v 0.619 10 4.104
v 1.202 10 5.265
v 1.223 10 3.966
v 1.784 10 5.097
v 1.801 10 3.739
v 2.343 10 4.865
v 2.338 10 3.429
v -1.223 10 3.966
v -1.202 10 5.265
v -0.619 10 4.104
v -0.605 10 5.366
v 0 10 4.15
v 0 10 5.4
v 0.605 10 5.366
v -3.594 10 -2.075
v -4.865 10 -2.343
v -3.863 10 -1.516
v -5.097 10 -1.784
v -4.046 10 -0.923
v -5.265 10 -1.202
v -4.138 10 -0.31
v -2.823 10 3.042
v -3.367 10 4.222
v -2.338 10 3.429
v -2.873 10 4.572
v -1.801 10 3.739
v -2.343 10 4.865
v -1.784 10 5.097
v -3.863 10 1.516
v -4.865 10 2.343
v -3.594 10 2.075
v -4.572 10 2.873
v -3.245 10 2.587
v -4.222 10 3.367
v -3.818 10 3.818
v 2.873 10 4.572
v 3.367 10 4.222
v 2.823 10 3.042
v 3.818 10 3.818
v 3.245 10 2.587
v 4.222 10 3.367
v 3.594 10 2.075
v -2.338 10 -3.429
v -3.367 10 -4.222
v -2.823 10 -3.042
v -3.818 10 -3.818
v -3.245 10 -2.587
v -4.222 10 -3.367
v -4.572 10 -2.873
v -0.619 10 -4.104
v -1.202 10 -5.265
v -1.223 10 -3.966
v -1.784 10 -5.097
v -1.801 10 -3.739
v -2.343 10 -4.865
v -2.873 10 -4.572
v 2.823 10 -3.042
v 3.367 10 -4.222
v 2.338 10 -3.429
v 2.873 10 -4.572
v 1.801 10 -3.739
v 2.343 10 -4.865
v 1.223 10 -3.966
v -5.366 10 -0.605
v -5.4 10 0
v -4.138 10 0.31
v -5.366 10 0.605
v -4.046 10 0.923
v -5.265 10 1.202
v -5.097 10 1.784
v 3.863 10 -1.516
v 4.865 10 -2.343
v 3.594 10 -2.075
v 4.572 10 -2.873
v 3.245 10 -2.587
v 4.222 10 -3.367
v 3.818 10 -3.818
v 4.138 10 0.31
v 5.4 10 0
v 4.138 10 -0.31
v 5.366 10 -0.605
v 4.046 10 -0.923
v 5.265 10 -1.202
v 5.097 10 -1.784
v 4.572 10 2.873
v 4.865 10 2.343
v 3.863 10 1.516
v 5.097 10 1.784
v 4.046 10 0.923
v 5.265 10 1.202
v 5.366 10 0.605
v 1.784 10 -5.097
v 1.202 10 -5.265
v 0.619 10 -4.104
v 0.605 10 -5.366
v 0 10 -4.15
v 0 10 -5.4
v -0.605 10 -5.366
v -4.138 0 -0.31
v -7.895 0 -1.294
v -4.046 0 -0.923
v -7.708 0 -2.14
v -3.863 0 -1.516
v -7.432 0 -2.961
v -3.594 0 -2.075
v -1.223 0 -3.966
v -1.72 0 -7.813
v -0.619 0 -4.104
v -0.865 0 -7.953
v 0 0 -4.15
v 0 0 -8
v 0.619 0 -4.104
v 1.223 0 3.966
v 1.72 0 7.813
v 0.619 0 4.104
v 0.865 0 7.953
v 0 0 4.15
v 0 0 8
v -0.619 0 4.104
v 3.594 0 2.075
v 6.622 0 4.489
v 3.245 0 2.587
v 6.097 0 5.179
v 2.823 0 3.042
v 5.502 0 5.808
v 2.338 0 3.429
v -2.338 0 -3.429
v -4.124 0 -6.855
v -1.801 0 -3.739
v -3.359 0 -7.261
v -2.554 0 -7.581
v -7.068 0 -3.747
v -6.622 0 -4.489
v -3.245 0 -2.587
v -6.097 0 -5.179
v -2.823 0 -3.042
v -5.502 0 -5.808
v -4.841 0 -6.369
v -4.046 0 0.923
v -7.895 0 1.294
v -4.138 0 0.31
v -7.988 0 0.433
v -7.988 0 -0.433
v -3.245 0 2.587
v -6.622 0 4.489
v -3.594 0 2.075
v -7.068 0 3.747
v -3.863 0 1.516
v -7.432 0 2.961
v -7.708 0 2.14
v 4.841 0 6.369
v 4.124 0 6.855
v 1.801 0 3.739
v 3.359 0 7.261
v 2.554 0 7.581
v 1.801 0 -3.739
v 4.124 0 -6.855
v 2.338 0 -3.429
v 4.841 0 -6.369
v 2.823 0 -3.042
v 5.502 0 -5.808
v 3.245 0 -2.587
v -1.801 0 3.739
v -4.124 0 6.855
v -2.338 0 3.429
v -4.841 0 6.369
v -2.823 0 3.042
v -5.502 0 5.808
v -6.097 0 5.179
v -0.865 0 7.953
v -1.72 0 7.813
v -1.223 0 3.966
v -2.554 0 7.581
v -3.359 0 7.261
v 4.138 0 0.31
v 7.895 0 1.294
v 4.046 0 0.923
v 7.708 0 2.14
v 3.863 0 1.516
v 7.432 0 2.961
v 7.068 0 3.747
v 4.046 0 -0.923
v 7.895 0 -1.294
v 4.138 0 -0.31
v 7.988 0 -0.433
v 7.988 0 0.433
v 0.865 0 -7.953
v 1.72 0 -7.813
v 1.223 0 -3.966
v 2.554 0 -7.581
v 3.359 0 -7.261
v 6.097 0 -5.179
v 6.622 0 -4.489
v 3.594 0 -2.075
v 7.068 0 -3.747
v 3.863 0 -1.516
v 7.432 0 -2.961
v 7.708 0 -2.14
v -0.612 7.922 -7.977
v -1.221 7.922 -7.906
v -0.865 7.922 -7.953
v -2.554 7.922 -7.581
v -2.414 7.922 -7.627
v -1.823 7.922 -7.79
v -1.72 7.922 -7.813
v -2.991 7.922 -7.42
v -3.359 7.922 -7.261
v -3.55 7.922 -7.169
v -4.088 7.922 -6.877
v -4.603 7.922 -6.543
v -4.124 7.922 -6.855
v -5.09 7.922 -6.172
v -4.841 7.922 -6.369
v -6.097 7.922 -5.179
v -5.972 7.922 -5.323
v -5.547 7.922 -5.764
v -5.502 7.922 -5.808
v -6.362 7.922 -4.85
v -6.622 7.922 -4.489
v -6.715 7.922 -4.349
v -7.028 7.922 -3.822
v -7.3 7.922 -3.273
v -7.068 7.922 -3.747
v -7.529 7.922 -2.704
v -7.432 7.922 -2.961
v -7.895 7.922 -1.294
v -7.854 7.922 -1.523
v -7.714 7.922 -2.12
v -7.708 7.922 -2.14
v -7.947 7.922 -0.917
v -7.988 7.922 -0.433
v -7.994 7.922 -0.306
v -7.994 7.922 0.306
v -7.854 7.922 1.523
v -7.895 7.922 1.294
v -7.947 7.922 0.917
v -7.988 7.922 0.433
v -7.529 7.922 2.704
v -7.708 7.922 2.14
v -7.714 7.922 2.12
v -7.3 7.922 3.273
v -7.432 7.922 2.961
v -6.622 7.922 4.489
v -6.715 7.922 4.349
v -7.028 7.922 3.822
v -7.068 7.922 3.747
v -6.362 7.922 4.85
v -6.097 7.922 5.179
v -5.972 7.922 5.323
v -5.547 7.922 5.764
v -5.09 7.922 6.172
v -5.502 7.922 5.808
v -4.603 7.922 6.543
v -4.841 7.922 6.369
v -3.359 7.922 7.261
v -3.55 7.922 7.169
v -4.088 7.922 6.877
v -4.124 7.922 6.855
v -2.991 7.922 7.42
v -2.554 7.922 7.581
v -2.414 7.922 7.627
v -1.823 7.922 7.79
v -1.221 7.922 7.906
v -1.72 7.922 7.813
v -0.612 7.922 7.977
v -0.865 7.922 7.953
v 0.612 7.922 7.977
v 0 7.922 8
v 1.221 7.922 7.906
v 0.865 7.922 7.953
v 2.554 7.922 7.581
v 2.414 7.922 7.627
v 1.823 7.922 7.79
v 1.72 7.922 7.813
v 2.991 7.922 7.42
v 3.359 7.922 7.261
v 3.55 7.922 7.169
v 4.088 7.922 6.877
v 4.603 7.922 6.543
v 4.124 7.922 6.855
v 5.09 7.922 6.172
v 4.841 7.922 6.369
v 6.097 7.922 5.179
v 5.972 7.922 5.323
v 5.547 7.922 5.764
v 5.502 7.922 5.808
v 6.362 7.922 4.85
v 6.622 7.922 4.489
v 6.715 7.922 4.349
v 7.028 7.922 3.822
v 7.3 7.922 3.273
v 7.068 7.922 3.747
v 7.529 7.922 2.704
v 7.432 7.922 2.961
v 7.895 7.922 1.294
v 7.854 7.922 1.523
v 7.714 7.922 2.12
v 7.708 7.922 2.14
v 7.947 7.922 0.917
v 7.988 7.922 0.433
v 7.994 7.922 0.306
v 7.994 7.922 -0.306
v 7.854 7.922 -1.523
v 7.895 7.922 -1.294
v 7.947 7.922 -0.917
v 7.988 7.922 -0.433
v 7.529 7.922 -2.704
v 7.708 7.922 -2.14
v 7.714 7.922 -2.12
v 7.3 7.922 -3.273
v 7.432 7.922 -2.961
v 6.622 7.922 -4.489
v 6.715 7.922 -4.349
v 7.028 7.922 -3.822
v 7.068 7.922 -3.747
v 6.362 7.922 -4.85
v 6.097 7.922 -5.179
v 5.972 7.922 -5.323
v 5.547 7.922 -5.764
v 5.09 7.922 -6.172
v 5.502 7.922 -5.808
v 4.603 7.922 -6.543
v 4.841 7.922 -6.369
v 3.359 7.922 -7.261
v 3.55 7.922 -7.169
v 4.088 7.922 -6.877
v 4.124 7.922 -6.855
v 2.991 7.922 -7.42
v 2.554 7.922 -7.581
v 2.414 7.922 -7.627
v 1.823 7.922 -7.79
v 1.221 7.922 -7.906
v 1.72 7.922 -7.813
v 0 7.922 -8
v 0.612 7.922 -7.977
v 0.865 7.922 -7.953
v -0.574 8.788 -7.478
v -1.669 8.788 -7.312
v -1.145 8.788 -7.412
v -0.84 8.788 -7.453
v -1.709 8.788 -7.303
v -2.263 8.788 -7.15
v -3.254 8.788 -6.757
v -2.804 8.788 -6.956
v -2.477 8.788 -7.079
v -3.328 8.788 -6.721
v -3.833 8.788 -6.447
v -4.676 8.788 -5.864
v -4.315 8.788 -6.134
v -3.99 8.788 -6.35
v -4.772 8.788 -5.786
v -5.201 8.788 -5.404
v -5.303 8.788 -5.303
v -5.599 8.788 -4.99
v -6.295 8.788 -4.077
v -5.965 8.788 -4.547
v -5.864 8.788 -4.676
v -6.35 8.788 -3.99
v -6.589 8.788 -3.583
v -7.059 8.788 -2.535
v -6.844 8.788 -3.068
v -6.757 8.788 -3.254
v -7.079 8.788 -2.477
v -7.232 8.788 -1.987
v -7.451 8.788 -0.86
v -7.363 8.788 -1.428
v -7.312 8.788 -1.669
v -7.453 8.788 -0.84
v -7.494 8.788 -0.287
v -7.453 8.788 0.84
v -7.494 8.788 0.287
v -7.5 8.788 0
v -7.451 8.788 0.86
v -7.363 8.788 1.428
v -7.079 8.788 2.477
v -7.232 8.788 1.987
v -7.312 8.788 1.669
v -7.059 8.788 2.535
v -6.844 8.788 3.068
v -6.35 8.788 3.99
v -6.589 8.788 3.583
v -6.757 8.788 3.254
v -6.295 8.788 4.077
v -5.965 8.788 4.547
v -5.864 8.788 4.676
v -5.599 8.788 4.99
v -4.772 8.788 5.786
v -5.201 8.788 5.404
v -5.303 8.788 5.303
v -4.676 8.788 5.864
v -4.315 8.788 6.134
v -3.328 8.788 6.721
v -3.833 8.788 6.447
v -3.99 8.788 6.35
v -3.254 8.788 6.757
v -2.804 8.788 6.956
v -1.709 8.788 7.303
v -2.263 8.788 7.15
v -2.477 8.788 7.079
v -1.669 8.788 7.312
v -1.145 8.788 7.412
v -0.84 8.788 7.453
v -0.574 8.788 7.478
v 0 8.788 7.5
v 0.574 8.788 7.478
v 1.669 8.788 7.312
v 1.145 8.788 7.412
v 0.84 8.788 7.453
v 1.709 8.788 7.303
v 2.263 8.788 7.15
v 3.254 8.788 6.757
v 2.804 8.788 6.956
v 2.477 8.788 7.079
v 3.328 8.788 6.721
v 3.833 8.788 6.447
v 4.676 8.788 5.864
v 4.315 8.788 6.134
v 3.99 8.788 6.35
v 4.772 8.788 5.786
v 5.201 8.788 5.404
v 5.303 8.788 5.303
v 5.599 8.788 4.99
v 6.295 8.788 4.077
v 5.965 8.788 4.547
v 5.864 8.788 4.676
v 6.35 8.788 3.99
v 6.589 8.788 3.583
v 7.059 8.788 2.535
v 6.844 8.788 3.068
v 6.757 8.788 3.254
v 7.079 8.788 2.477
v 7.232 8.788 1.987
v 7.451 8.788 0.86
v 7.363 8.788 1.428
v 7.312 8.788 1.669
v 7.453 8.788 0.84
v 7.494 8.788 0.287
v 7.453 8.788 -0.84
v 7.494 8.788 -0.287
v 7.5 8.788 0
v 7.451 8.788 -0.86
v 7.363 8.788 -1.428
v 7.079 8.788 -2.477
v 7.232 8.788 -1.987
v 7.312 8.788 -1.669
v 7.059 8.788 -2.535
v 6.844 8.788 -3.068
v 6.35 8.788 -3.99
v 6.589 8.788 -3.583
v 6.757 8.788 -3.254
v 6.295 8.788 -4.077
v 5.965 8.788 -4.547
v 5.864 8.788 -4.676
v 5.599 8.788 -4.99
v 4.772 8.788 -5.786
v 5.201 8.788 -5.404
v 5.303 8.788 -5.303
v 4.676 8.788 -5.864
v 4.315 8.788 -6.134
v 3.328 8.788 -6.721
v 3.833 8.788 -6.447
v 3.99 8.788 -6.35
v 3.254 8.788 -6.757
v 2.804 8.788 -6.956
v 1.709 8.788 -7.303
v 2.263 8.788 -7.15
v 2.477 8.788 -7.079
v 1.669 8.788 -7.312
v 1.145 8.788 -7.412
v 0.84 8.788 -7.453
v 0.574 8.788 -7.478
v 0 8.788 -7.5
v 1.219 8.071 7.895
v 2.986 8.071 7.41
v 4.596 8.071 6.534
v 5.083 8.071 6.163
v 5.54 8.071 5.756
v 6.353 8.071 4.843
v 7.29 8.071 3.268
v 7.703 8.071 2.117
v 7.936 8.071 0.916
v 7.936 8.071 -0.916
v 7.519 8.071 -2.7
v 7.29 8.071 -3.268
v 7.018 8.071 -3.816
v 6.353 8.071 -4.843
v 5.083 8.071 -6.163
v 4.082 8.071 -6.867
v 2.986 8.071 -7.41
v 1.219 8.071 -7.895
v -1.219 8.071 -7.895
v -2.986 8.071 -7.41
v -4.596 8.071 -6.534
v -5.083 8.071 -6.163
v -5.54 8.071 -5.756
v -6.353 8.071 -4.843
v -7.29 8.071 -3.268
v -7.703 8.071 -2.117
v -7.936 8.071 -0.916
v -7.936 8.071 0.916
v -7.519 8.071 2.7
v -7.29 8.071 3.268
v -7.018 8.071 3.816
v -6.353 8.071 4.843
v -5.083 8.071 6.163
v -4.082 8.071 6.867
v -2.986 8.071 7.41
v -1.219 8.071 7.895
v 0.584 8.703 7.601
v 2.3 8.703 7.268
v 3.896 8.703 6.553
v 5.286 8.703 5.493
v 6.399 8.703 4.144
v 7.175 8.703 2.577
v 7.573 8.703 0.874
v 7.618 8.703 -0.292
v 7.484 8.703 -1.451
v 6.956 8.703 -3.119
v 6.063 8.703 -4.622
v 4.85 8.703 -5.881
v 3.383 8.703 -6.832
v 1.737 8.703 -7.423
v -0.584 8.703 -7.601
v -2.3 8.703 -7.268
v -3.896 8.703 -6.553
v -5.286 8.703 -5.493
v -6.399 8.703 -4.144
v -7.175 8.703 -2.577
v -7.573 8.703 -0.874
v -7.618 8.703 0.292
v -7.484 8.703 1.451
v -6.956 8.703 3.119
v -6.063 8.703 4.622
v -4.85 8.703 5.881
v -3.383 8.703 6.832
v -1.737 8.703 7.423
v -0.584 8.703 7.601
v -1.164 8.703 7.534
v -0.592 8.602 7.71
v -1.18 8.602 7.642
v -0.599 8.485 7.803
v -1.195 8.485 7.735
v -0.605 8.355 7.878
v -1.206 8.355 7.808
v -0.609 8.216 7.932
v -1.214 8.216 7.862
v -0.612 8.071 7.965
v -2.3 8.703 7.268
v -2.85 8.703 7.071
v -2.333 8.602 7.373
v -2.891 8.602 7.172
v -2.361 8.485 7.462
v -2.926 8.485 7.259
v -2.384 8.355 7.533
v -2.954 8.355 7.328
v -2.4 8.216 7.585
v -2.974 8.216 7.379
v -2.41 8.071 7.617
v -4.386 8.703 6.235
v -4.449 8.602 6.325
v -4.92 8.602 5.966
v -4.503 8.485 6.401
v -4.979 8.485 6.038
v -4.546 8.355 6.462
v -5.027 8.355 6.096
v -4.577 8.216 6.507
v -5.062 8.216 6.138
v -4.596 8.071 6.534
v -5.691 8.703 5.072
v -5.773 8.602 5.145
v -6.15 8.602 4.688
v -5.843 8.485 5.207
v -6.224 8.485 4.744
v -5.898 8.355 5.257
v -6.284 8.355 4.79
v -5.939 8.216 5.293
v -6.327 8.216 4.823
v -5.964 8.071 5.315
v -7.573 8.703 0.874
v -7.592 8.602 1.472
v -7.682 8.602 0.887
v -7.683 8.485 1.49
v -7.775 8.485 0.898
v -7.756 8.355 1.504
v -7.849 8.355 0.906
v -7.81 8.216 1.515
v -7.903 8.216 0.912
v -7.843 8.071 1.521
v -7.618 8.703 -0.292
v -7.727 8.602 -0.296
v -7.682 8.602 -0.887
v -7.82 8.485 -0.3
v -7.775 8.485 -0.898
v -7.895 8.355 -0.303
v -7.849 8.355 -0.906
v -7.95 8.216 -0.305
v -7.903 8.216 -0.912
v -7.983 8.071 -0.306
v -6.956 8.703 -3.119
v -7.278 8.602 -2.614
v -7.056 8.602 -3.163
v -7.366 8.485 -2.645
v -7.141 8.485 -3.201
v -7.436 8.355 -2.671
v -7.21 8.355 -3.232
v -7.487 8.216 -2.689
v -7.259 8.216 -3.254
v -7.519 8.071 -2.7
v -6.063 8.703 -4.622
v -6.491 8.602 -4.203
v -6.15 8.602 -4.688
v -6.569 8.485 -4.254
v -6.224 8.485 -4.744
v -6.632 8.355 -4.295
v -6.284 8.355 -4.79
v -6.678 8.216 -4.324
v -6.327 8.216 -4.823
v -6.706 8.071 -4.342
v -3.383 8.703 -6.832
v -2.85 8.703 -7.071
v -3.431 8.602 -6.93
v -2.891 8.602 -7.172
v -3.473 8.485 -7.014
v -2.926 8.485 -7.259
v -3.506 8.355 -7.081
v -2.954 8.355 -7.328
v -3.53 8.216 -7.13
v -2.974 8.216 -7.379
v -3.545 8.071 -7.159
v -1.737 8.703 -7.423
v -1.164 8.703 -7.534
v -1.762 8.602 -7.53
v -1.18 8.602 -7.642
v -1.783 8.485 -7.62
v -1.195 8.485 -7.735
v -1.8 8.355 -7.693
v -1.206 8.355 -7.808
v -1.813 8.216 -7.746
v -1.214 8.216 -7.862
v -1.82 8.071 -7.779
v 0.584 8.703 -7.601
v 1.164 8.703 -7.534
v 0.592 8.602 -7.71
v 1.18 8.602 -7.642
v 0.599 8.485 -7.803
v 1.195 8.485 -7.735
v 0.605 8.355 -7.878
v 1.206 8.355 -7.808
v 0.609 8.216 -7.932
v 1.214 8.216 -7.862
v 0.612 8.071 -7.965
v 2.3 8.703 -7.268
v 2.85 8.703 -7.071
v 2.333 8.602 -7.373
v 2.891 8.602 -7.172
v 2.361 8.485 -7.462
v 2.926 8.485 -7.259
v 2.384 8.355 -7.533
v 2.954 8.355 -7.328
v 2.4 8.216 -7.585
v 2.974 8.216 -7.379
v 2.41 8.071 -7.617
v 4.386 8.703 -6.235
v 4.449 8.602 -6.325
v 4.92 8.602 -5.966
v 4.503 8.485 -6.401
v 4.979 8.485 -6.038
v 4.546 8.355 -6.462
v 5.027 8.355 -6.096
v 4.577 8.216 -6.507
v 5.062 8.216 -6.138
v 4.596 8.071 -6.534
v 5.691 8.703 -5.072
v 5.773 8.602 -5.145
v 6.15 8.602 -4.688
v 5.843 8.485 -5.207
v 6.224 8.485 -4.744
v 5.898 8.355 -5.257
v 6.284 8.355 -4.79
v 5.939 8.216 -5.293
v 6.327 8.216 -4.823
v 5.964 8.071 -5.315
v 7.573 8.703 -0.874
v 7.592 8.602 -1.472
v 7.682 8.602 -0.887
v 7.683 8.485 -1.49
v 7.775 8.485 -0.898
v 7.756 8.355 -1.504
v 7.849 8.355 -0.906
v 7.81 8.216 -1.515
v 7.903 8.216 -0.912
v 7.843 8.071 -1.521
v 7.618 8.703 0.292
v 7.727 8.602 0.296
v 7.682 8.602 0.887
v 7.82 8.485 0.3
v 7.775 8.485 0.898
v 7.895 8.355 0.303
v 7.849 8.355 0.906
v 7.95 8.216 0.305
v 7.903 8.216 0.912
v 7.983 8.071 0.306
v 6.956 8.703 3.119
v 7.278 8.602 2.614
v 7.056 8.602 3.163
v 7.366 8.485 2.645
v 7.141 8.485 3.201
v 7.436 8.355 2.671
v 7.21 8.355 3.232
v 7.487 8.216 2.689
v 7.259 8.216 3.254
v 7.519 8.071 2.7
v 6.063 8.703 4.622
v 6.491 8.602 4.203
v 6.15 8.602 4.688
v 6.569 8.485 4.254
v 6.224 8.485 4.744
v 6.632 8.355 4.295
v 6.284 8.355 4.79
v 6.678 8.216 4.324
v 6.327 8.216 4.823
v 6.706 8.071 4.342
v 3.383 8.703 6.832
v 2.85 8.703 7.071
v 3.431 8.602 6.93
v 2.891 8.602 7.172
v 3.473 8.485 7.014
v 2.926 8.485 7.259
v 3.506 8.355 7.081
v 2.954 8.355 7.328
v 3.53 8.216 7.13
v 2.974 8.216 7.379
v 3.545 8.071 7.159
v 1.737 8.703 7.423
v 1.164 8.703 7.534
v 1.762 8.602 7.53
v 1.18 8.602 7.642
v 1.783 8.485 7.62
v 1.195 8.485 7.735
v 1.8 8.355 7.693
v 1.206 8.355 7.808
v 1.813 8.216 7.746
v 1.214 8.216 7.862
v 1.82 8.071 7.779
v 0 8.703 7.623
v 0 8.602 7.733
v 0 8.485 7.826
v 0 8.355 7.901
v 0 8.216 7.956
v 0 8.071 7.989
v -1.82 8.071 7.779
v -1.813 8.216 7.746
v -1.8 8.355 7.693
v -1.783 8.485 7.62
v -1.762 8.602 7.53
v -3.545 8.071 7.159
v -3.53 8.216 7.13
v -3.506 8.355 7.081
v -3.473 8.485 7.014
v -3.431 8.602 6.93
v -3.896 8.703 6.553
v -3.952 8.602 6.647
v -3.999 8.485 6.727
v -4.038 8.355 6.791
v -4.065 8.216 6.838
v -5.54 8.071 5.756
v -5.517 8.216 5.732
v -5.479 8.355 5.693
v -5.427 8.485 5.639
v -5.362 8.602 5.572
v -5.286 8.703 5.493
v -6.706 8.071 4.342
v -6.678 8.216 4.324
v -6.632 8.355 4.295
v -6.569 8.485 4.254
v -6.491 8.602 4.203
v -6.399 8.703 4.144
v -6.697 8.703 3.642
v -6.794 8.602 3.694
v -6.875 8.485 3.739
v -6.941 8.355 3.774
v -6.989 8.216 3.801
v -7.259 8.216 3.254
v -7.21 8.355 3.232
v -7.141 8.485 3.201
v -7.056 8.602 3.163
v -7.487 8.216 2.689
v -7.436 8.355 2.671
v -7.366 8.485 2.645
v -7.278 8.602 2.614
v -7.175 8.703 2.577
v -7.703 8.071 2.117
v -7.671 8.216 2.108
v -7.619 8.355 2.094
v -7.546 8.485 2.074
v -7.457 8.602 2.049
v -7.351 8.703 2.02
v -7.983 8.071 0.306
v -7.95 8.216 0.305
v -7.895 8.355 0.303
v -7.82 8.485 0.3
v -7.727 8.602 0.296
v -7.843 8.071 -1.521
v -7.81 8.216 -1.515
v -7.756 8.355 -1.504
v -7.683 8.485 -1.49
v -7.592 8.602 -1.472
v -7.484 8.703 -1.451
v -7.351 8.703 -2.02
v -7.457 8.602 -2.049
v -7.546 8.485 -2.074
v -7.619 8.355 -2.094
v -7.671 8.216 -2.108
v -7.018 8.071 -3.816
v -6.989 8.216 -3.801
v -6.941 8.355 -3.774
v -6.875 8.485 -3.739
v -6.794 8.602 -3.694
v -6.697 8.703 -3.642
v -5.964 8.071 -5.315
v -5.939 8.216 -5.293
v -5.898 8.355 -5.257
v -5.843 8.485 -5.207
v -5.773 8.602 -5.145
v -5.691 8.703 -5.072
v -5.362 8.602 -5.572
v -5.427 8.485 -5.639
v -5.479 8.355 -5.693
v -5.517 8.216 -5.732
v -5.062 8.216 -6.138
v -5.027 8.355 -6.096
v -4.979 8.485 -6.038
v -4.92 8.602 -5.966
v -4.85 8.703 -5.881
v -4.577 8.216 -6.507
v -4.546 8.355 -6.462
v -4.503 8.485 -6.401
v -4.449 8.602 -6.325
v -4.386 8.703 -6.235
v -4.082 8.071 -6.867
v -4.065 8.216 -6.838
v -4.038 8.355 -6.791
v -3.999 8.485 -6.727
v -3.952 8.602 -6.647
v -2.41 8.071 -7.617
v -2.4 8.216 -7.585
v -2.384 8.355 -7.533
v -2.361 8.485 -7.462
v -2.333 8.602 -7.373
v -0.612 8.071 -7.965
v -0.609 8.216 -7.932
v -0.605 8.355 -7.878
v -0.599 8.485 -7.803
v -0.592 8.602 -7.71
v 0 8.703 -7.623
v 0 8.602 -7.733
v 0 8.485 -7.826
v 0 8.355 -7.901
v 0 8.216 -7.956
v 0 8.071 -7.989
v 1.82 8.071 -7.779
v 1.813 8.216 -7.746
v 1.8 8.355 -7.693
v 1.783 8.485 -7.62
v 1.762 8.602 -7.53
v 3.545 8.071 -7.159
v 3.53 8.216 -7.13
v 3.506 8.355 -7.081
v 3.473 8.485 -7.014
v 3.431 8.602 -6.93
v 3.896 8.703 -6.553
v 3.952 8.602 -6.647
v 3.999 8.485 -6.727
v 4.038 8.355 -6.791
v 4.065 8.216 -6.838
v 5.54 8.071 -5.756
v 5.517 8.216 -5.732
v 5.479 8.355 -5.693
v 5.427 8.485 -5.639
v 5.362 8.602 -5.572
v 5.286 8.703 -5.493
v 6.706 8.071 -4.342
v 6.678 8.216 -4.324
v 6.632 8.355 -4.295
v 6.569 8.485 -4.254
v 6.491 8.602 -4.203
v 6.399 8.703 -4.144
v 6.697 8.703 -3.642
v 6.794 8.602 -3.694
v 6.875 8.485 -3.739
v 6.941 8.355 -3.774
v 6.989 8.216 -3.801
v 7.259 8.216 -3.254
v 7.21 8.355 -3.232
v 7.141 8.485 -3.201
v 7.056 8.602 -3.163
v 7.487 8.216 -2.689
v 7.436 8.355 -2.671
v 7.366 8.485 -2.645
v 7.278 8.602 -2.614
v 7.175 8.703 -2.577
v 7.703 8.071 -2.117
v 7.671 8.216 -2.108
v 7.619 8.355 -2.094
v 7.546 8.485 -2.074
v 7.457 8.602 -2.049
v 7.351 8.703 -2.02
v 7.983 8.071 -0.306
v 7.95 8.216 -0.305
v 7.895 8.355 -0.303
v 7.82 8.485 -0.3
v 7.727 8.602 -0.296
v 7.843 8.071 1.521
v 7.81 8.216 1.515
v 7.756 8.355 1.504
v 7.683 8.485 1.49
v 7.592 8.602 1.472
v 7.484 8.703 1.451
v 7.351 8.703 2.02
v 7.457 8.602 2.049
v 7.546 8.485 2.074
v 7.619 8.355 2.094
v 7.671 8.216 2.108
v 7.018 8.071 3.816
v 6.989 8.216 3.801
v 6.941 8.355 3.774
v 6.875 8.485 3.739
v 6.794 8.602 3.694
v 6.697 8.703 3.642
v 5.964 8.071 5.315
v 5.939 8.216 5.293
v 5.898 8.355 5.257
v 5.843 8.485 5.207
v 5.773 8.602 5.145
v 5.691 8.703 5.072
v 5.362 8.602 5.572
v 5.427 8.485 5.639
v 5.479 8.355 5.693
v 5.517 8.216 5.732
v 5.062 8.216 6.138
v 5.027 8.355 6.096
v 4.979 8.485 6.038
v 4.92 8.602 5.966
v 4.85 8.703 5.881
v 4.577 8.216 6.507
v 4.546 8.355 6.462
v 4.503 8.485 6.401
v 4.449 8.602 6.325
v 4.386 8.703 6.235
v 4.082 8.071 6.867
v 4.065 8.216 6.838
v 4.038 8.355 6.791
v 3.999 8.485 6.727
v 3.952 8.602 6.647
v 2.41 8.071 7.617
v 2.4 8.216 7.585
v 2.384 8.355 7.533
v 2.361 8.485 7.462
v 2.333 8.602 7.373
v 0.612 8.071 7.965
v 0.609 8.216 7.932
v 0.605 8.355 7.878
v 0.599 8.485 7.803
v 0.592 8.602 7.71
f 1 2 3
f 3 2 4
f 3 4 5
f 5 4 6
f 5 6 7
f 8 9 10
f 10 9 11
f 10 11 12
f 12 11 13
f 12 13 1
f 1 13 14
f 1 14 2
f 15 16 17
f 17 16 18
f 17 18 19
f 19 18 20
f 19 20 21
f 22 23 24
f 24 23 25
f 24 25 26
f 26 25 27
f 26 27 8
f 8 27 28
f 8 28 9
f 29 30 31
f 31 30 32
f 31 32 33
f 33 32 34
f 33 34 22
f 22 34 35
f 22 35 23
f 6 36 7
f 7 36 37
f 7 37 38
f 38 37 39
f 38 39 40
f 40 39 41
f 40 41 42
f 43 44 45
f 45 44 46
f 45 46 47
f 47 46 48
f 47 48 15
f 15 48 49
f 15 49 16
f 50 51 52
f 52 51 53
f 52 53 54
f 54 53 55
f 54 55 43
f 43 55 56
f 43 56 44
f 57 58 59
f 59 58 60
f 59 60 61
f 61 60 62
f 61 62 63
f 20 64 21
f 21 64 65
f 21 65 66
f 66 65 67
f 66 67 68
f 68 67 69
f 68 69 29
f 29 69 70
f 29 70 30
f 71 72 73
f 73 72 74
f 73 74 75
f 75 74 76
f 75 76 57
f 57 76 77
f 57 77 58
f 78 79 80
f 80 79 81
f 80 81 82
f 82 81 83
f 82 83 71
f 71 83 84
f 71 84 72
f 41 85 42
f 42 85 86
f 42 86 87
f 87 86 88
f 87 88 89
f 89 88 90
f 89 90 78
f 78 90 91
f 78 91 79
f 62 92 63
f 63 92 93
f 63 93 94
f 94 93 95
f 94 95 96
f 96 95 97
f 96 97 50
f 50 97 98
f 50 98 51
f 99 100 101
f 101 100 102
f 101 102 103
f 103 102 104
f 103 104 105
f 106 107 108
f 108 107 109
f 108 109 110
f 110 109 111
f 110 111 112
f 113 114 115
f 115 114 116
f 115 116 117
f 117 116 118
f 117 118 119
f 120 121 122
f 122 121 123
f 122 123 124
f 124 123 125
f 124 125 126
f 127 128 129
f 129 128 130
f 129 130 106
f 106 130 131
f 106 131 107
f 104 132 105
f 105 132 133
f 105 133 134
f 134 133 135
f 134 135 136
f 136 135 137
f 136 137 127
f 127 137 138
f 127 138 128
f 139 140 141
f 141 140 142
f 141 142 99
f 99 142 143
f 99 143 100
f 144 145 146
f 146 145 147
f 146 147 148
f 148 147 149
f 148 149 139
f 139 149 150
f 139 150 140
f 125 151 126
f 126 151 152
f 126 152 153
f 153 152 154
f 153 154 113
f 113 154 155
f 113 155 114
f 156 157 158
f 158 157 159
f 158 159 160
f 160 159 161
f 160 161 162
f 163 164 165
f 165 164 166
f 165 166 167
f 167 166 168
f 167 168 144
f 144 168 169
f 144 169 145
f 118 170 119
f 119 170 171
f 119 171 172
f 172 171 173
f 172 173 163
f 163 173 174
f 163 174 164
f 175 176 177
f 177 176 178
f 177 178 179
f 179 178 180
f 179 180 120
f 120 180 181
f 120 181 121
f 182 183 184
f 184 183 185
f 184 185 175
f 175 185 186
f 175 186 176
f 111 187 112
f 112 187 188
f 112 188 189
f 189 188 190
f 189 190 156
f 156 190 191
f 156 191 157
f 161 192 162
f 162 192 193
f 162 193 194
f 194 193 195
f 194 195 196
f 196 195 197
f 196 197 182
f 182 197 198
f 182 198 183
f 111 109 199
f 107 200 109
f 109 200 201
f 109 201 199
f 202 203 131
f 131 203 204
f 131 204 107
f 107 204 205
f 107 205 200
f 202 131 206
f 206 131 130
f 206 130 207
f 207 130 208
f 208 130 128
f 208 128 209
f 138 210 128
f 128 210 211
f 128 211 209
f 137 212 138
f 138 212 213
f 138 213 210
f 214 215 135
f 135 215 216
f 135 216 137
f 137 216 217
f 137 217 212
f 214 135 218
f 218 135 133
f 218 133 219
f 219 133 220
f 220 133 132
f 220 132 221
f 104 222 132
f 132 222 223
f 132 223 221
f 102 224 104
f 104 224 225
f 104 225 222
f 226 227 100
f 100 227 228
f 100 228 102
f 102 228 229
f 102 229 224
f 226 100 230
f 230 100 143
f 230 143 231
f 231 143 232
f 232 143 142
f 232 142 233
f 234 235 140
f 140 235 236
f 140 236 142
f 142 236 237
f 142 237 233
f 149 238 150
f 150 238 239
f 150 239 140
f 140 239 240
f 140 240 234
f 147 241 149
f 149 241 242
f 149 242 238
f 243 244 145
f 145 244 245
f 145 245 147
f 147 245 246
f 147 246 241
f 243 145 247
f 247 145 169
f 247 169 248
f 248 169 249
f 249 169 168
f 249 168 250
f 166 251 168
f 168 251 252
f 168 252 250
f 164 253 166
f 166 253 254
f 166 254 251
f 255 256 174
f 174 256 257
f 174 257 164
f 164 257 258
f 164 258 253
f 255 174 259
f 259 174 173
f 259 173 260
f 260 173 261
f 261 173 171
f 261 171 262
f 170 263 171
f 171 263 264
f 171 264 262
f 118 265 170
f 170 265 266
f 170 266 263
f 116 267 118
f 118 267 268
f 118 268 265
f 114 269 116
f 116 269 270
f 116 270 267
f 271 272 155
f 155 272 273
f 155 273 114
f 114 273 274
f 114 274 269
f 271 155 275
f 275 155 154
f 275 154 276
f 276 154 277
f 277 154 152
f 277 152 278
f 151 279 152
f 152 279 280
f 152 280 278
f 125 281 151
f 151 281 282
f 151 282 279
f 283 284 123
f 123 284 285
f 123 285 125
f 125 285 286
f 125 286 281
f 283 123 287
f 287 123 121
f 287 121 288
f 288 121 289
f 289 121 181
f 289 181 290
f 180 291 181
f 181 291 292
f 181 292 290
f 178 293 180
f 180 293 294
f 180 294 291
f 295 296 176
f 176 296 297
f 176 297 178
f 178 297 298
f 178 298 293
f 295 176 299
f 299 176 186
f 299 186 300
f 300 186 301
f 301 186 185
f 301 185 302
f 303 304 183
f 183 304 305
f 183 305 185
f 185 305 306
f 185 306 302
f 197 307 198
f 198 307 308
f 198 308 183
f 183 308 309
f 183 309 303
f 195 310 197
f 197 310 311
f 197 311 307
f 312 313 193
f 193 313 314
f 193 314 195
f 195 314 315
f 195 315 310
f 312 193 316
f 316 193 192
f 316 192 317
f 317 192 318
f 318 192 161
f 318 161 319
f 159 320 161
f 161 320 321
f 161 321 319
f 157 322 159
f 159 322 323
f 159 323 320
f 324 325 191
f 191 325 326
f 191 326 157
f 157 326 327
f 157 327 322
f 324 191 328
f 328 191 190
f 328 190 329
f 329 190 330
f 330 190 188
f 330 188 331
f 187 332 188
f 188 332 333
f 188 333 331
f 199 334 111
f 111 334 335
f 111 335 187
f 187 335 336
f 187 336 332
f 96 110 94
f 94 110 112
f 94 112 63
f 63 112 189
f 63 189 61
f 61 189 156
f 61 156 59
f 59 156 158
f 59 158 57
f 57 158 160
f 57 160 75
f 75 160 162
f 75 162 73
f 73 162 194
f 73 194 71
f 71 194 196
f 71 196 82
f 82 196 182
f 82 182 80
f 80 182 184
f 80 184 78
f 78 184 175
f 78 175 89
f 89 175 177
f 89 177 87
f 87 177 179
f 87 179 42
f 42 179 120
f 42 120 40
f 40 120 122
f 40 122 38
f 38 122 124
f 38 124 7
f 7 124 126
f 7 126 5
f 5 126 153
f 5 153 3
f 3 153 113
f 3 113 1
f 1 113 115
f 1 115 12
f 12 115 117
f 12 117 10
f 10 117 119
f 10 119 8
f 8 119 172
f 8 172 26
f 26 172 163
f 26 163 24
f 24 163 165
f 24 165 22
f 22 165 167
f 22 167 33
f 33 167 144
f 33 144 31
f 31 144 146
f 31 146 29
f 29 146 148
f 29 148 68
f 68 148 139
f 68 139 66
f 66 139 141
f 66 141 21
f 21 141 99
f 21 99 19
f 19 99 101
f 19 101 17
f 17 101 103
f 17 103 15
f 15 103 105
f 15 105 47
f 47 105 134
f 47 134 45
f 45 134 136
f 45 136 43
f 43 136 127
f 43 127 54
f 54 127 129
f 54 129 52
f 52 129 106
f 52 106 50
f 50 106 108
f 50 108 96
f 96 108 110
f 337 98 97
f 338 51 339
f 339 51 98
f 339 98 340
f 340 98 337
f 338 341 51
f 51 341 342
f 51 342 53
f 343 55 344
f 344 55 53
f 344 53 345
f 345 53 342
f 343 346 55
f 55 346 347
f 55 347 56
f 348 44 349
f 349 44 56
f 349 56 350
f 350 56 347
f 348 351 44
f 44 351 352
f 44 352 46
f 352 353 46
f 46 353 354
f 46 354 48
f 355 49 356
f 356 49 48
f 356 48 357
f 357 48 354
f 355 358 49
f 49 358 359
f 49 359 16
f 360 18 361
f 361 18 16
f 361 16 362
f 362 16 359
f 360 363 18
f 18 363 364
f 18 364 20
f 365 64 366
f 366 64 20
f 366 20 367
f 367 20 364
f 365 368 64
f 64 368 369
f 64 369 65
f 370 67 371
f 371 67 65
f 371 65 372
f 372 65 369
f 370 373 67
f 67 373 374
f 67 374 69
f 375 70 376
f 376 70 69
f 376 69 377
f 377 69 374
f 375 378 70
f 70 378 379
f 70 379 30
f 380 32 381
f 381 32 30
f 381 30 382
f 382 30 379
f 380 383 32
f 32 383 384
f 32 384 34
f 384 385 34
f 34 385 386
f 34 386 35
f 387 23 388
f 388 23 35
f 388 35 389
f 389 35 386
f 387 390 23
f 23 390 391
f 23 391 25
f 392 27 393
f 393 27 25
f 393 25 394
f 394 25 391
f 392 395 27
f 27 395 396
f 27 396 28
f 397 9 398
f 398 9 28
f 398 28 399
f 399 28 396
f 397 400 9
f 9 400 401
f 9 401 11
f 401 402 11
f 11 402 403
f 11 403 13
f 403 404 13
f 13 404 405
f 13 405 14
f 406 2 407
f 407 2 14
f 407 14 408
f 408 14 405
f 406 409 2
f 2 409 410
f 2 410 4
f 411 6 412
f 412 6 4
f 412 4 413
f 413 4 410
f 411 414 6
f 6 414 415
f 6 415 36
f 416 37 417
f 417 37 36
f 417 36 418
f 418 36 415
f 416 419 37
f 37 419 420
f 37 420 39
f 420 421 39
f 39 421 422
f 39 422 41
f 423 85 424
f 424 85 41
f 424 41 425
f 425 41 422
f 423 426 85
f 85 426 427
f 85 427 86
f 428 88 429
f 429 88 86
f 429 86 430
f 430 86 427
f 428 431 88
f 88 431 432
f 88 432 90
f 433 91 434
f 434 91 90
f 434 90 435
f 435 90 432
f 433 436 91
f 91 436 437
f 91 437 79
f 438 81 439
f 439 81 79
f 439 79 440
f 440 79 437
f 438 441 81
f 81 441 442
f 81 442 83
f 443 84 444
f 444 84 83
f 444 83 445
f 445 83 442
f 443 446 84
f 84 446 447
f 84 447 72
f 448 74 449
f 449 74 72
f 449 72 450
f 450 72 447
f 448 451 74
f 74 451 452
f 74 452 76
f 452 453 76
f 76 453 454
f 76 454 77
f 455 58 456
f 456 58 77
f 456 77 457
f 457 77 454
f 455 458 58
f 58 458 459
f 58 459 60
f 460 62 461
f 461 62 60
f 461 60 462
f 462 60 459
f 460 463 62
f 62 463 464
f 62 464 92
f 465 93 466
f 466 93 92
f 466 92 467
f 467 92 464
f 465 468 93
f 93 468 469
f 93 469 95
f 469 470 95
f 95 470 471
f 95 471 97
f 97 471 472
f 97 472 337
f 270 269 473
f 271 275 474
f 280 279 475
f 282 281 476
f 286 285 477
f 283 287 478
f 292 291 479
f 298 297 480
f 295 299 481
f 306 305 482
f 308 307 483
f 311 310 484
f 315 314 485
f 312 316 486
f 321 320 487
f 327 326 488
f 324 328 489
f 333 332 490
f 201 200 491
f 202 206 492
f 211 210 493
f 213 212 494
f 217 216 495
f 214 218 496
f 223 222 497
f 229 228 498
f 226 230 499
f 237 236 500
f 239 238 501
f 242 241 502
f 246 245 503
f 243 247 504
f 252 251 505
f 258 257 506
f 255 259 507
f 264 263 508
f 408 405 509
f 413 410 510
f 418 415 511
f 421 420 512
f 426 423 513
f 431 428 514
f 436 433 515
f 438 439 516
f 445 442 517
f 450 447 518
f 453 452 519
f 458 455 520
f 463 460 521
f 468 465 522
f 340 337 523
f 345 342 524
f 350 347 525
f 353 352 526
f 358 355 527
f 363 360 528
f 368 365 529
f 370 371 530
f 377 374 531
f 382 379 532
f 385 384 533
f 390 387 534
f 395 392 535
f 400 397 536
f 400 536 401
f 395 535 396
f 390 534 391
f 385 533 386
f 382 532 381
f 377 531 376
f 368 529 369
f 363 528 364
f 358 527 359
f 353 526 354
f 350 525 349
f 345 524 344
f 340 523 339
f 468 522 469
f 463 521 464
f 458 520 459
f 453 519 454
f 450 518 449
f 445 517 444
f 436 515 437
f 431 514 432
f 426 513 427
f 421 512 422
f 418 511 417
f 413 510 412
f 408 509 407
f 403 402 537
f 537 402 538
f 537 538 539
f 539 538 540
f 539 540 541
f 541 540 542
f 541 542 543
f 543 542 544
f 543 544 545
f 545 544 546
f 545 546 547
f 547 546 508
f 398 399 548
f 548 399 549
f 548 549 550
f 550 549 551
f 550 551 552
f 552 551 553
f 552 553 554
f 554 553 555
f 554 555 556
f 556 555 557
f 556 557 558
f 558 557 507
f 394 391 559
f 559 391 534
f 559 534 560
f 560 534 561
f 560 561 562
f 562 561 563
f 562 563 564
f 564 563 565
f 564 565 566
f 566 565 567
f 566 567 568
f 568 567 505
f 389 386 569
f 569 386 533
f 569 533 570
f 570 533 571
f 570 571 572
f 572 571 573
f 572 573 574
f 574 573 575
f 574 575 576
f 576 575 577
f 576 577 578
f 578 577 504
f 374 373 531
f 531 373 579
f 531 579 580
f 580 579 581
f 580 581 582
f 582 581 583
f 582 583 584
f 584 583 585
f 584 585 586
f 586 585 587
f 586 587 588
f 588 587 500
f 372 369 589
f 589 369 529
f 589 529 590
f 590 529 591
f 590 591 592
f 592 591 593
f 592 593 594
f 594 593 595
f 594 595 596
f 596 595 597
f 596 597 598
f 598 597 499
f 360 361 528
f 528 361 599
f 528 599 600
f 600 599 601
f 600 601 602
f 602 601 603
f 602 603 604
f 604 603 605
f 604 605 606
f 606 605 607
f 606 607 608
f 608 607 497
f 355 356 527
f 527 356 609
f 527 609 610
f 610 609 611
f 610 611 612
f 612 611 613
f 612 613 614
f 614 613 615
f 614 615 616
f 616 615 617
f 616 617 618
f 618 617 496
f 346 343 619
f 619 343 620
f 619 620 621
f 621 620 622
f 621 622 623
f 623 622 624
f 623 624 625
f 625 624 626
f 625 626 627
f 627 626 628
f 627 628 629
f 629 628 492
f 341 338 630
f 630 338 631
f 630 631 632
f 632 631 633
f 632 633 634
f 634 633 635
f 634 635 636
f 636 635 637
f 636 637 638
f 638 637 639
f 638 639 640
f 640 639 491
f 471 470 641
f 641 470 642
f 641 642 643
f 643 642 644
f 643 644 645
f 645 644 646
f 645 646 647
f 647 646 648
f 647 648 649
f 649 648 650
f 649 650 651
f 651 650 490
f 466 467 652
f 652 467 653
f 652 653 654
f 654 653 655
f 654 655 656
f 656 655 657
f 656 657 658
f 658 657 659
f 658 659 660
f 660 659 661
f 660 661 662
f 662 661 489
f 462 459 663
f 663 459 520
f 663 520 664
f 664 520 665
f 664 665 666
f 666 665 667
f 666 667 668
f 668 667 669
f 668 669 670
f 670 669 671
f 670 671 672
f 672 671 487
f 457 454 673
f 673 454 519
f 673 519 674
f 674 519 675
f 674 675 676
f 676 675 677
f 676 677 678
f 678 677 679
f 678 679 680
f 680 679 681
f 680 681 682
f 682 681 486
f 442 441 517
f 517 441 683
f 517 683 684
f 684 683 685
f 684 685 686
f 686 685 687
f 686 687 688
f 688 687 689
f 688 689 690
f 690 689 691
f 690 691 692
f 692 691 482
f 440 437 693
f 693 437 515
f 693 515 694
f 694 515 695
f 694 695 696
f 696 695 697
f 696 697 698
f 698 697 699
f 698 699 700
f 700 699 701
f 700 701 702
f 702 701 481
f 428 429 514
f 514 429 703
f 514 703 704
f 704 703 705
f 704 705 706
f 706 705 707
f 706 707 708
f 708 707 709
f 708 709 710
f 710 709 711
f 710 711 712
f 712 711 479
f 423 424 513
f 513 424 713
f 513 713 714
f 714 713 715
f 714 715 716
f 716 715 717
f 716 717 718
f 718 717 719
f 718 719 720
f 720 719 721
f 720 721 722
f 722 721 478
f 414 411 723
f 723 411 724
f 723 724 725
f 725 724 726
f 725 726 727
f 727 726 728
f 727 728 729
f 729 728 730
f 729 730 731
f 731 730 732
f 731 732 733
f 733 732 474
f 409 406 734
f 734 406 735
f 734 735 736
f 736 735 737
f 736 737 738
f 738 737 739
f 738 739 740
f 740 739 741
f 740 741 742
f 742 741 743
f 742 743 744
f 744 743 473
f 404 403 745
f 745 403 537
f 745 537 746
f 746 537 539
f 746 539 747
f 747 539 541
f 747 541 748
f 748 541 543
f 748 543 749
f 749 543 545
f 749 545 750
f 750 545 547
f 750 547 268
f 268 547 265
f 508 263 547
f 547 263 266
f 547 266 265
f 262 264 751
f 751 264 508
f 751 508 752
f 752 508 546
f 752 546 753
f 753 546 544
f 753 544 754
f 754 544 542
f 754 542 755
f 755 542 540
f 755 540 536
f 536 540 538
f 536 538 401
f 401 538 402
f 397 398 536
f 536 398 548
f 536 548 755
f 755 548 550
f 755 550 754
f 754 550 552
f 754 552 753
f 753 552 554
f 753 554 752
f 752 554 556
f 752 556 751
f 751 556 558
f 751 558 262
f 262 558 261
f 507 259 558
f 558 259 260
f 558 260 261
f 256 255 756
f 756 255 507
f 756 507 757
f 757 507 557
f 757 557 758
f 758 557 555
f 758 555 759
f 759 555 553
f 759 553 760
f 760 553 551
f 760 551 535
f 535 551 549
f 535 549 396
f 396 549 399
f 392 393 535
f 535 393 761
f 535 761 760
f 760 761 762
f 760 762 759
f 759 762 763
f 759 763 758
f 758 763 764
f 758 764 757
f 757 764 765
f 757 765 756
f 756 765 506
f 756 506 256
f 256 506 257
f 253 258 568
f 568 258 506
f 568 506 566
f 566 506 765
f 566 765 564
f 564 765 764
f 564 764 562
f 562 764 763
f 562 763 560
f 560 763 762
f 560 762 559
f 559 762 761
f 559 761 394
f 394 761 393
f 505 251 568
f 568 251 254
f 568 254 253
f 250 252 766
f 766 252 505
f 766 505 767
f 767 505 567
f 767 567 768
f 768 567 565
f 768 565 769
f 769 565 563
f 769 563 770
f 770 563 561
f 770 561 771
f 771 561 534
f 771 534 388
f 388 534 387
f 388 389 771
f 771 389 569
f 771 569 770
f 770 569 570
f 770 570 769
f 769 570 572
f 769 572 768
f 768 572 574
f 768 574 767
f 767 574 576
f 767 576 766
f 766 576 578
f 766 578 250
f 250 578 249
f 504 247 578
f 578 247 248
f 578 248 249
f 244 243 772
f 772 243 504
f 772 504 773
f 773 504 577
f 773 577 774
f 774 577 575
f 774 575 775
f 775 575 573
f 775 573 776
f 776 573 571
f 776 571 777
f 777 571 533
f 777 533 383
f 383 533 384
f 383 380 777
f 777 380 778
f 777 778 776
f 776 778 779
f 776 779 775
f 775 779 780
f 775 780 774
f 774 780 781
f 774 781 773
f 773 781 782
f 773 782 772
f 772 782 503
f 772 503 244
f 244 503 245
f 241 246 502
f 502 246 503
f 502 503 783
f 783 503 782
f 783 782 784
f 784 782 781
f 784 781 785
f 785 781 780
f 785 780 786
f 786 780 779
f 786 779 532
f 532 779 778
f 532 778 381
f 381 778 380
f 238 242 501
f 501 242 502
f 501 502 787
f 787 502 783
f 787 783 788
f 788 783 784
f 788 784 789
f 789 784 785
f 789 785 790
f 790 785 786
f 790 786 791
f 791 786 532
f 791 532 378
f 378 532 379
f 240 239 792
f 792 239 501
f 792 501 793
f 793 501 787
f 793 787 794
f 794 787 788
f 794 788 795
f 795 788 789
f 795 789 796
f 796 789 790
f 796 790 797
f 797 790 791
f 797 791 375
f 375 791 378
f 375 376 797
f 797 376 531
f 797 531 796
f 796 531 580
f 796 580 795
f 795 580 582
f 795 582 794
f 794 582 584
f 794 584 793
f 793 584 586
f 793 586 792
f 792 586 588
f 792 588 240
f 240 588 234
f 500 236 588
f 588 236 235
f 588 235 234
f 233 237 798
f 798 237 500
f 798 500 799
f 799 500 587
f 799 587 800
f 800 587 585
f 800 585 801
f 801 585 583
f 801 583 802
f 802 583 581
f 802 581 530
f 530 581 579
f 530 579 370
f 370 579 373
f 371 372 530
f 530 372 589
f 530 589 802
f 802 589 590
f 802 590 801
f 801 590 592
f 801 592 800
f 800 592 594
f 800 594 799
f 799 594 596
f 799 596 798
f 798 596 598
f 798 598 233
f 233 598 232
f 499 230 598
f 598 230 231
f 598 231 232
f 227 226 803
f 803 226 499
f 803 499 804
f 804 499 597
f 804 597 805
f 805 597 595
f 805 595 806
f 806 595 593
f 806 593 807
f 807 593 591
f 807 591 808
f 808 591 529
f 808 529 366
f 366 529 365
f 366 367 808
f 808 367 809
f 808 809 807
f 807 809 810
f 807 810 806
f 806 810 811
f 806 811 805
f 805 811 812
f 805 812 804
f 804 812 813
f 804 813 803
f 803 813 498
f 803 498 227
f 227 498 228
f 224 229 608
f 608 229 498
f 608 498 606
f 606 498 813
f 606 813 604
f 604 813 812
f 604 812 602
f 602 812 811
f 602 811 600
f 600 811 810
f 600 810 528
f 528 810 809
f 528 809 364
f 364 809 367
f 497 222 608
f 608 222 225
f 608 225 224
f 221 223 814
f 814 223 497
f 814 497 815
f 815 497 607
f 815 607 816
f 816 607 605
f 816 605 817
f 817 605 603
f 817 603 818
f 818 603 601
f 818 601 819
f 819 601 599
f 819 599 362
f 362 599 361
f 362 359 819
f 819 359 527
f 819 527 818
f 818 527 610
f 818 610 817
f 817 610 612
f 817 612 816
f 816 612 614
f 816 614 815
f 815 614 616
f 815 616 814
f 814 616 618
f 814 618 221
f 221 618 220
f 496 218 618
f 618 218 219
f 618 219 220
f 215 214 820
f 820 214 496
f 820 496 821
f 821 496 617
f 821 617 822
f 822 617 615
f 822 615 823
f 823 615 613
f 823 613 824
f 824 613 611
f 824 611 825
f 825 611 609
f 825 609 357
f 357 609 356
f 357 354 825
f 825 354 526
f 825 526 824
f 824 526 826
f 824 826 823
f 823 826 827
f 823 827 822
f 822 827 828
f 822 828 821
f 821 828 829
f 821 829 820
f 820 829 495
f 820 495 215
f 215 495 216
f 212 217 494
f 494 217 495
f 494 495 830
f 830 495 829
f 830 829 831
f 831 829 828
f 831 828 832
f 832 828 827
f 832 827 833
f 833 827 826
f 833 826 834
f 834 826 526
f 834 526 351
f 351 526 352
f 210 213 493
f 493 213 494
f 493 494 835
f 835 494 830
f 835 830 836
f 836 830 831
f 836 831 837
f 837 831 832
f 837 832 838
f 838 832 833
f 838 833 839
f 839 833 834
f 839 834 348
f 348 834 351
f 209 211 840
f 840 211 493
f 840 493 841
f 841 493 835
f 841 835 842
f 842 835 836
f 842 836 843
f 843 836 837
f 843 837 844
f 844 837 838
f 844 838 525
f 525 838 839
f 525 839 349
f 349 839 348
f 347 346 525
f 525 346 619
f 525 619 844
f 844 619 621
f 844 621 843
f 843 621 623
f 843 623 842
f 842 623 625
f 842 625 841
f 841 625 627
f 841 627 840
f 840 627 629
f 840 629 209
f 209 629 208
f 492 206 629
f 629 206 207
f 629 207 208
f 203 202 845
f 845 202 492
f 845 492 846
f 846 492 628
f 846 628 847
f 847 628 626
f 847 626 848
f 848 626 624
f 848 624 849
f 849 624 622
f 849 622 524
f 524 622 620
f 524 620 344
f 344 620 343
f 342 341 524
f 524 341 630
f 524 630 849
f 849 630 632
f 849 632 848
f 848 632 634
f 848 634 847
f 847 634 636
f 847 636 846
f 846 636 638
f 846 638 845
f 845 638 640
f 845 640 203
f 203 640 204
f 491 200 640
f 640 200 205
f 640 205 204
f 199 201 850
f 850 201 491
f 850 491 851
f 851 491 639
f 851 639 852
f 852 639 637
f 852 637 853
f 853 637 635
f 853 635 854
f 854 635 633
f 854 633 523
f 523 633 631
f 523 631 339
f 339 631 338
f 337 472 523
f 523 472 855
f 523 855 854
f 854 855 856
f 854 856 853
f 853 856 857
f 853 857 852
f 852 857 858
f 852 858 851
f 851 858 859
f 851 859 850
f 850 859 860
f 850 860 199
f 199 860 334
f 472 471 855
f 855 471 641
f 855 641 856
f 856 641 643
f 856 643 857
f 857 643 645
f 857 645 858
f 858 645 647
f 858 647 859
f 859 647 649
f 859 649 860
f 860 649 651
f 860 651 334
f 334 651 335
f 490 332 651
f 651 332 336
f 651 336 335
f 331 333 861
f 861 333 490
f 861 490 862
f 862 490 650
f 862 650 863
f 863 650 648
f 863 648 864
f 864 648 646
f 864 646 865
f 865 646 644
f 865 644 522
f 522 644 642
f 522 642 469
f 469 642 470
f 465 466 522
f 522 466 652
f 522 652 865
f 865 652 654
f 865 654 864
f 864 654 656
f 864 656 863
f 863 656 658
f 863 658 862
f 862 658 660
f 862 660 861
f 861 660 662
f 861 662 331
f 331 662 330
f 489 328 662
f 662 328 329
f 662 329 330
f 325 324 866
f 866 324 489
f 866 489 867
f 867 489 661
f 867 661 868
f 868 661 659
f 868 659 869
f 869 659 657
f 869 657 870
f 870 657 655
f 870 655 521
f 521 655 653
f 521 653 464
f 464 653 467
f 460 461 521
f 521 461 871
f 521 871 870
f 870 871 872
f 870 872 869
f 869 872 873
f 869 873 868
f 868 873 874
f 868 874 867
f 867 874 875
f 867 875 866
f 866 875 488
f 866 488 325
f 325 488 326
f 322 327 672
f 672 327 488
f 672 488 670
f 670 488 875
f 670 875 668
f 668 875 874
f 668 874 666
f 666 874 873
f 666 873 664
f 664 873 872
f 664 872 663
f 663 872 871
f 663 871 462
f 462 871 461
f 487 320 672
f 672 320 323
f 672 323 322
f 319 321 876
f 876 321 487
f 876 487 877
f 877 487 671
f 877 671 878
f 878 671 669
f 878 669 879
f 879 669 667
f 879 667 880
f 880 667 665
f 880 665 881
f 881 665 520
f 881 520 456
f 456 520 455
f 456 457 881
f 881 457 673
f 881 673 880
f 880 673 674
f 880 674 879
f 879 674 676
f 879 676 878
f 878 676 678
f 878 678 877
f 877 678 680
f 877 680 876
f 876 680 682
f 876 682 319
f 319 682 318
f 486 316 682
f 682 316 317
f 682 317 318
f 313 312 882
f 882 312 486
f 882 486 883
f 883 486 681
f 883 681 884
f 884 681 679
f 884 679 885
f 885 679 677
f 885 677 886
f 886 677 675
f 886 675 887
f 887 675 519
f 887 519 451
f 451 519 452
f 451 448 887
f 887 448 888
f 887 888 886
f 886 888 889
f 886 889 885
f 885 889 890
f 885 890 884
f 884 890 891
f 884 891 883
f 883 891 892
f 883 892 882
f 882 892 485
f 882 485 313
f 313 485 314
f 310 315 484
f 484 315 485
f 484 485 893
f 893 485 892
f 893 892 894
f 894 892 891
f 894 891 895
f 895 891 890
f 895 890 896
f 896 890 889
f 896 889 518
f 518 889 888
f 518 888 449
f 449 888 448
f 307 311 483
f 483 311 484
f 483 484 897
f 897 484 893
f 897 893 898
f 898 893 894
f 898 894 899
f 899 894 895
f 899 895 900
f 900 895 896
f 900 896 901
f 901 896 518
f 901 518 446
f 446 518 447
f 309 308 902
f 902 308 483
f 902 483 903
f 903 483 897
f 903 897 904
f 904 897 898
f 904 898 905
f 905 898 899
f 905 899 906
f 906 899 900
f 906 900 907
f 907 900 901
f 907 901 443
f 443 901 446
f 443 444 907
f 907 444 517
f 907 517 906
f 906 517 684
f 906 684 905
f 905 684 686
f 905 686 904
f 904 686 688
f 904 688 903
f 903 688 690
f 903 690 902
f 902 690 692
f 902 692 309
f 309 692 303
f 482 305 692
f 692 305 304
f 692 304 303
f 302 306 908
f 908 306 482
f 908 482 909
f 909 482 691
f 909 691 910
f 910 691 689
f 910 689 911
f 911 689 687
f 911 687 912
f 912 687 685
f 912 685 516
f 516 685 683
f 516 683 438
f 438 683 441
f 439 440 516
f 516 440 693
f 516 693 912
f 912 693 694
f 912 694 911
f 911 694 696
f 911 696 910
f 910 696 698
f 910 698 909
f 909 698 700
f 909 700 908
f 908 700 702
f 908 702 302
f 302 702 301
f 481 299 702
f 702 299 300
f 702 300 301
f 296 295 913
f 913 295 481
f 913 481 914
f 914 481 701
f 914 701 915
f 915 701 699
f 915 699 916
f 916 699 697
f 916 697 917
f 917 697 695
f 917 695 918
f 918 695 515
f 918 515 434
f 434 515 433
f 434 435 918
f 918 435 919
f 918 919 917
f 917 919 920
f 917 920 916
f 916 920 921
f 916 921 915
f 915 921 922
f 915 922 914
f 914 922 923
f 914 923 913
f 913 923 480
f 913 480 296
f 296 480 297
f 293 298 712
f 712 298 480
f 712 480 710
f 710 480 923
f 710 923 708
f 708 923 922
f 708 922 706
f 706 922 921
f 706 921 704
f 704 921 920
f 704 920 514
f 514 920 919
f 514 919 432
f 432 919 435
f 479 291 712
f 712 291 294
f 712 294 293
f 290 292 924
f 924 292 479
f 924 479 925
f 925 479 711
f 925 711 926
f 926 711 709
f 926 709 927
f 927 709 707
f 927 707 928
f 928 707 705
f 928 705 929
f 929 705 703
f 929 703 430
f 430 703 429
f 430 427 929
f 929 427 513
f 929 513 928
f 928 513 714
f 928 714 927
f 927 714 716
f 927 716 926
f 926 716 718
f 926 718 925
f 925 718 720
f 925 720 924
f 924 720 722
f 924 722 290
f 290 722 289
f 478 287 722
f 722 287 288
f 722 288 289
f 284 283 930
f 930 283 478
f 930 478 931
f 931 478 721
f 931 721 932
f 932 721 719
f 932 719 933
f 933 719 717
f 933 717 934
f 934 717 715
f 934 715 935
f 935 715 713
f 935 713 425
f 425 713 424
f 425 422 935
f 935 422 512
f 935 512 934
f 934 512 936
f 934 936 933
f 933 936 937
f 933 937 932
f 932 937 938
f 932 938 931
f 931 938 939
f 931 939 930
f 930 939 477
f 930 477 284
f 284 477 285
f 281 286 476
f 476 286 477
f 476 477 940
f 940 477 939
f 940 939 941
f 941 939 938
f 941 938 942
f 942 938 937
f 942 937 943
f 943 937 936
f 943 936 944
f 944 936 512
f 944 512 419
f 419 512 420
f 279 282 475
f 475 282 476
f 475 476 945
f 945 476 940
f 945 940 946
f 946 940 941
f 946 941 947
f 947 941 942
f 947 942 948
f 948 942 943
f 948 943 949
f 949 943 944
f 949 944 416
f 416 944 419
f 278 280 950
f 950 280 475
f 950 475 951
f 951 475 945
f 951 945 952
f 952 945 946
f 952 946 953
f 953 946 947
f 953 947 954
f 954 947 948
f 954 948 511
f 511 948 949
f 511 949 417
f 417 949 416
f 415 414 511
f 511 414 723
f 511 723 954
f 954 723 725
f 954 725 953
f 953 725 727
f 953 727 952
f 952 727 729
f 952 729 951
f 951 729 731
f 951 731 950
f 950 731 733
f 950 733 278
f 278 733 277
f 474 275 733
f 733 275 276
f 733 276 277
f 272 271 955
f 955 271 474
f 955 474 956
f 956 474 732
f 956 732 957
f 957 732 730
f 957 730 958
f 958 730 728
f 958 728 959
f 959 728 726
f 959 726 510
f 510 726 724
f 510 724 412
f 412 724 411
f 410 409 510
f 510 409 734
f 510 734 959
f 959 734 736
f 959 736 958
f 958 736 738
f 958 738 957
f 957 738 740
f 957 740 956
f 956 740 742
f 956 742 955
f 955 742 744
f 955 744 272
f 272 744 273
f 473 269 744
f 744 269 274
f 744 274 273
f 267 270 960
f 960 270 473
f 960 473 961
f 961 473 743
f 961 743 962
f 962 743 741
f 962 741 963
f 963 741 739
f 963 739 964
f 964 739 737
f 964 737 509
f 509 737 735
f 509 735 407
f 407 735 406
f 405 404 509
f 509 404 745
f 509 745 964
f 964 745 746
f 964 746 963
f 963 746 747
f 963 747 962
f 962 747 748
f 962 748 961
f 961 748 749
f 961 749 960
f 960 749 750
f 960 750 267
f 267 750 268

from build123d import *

# Parameters (mm, degrees)
SKETCH1_R           = 8
SKETCH1_R_2         = 4.15
BOSS_EXTRUDE1_DEPTH = 10
CHAMFER1_SIZE       = 2.6
CHAMFER1_SIZE2      = 1.5011107
FILLET1_R           = 1


with BuildPart() as part:
    # Sketch1 → Boss-Extrude1 (new body)
    with BuildSketch(Plane(origin=(0, 0, 0), x_dir=(1, 0, 0), z_dir=(0, 1, 0))):
        Circle(SKETCH1_R)
        Circle(SKETCH1_R_2, mode=Mode.SUBTRACT)
    extrude(amount=BOSS_EXTRUDE1_DEPTH)

    # Chamfer1
    chamfer1_edges = [part.edges().sort_by_distance(p)[0] for p in [
        (-8, 10, 0),
    ]]
    chamfer1_side = [part.faces().sort_by_distance(p)[0] for p in [
        (-7.77372583, 10, 0),
    ]]
    chamfer(chamfer1_edges, length=CHAMFER1_SIZE, length2=CHAMFER1_SIZE2, reference=chamfer1_side[0])

    # Fillet1
    fillet1_edges = [part.edges().sort_by_distance(p)[0] for p in [
        (-8, 8.4988893, 0),
    ]]
    fillet(fillet1_edges, radius=FILLET1_R)


solid = part.part
